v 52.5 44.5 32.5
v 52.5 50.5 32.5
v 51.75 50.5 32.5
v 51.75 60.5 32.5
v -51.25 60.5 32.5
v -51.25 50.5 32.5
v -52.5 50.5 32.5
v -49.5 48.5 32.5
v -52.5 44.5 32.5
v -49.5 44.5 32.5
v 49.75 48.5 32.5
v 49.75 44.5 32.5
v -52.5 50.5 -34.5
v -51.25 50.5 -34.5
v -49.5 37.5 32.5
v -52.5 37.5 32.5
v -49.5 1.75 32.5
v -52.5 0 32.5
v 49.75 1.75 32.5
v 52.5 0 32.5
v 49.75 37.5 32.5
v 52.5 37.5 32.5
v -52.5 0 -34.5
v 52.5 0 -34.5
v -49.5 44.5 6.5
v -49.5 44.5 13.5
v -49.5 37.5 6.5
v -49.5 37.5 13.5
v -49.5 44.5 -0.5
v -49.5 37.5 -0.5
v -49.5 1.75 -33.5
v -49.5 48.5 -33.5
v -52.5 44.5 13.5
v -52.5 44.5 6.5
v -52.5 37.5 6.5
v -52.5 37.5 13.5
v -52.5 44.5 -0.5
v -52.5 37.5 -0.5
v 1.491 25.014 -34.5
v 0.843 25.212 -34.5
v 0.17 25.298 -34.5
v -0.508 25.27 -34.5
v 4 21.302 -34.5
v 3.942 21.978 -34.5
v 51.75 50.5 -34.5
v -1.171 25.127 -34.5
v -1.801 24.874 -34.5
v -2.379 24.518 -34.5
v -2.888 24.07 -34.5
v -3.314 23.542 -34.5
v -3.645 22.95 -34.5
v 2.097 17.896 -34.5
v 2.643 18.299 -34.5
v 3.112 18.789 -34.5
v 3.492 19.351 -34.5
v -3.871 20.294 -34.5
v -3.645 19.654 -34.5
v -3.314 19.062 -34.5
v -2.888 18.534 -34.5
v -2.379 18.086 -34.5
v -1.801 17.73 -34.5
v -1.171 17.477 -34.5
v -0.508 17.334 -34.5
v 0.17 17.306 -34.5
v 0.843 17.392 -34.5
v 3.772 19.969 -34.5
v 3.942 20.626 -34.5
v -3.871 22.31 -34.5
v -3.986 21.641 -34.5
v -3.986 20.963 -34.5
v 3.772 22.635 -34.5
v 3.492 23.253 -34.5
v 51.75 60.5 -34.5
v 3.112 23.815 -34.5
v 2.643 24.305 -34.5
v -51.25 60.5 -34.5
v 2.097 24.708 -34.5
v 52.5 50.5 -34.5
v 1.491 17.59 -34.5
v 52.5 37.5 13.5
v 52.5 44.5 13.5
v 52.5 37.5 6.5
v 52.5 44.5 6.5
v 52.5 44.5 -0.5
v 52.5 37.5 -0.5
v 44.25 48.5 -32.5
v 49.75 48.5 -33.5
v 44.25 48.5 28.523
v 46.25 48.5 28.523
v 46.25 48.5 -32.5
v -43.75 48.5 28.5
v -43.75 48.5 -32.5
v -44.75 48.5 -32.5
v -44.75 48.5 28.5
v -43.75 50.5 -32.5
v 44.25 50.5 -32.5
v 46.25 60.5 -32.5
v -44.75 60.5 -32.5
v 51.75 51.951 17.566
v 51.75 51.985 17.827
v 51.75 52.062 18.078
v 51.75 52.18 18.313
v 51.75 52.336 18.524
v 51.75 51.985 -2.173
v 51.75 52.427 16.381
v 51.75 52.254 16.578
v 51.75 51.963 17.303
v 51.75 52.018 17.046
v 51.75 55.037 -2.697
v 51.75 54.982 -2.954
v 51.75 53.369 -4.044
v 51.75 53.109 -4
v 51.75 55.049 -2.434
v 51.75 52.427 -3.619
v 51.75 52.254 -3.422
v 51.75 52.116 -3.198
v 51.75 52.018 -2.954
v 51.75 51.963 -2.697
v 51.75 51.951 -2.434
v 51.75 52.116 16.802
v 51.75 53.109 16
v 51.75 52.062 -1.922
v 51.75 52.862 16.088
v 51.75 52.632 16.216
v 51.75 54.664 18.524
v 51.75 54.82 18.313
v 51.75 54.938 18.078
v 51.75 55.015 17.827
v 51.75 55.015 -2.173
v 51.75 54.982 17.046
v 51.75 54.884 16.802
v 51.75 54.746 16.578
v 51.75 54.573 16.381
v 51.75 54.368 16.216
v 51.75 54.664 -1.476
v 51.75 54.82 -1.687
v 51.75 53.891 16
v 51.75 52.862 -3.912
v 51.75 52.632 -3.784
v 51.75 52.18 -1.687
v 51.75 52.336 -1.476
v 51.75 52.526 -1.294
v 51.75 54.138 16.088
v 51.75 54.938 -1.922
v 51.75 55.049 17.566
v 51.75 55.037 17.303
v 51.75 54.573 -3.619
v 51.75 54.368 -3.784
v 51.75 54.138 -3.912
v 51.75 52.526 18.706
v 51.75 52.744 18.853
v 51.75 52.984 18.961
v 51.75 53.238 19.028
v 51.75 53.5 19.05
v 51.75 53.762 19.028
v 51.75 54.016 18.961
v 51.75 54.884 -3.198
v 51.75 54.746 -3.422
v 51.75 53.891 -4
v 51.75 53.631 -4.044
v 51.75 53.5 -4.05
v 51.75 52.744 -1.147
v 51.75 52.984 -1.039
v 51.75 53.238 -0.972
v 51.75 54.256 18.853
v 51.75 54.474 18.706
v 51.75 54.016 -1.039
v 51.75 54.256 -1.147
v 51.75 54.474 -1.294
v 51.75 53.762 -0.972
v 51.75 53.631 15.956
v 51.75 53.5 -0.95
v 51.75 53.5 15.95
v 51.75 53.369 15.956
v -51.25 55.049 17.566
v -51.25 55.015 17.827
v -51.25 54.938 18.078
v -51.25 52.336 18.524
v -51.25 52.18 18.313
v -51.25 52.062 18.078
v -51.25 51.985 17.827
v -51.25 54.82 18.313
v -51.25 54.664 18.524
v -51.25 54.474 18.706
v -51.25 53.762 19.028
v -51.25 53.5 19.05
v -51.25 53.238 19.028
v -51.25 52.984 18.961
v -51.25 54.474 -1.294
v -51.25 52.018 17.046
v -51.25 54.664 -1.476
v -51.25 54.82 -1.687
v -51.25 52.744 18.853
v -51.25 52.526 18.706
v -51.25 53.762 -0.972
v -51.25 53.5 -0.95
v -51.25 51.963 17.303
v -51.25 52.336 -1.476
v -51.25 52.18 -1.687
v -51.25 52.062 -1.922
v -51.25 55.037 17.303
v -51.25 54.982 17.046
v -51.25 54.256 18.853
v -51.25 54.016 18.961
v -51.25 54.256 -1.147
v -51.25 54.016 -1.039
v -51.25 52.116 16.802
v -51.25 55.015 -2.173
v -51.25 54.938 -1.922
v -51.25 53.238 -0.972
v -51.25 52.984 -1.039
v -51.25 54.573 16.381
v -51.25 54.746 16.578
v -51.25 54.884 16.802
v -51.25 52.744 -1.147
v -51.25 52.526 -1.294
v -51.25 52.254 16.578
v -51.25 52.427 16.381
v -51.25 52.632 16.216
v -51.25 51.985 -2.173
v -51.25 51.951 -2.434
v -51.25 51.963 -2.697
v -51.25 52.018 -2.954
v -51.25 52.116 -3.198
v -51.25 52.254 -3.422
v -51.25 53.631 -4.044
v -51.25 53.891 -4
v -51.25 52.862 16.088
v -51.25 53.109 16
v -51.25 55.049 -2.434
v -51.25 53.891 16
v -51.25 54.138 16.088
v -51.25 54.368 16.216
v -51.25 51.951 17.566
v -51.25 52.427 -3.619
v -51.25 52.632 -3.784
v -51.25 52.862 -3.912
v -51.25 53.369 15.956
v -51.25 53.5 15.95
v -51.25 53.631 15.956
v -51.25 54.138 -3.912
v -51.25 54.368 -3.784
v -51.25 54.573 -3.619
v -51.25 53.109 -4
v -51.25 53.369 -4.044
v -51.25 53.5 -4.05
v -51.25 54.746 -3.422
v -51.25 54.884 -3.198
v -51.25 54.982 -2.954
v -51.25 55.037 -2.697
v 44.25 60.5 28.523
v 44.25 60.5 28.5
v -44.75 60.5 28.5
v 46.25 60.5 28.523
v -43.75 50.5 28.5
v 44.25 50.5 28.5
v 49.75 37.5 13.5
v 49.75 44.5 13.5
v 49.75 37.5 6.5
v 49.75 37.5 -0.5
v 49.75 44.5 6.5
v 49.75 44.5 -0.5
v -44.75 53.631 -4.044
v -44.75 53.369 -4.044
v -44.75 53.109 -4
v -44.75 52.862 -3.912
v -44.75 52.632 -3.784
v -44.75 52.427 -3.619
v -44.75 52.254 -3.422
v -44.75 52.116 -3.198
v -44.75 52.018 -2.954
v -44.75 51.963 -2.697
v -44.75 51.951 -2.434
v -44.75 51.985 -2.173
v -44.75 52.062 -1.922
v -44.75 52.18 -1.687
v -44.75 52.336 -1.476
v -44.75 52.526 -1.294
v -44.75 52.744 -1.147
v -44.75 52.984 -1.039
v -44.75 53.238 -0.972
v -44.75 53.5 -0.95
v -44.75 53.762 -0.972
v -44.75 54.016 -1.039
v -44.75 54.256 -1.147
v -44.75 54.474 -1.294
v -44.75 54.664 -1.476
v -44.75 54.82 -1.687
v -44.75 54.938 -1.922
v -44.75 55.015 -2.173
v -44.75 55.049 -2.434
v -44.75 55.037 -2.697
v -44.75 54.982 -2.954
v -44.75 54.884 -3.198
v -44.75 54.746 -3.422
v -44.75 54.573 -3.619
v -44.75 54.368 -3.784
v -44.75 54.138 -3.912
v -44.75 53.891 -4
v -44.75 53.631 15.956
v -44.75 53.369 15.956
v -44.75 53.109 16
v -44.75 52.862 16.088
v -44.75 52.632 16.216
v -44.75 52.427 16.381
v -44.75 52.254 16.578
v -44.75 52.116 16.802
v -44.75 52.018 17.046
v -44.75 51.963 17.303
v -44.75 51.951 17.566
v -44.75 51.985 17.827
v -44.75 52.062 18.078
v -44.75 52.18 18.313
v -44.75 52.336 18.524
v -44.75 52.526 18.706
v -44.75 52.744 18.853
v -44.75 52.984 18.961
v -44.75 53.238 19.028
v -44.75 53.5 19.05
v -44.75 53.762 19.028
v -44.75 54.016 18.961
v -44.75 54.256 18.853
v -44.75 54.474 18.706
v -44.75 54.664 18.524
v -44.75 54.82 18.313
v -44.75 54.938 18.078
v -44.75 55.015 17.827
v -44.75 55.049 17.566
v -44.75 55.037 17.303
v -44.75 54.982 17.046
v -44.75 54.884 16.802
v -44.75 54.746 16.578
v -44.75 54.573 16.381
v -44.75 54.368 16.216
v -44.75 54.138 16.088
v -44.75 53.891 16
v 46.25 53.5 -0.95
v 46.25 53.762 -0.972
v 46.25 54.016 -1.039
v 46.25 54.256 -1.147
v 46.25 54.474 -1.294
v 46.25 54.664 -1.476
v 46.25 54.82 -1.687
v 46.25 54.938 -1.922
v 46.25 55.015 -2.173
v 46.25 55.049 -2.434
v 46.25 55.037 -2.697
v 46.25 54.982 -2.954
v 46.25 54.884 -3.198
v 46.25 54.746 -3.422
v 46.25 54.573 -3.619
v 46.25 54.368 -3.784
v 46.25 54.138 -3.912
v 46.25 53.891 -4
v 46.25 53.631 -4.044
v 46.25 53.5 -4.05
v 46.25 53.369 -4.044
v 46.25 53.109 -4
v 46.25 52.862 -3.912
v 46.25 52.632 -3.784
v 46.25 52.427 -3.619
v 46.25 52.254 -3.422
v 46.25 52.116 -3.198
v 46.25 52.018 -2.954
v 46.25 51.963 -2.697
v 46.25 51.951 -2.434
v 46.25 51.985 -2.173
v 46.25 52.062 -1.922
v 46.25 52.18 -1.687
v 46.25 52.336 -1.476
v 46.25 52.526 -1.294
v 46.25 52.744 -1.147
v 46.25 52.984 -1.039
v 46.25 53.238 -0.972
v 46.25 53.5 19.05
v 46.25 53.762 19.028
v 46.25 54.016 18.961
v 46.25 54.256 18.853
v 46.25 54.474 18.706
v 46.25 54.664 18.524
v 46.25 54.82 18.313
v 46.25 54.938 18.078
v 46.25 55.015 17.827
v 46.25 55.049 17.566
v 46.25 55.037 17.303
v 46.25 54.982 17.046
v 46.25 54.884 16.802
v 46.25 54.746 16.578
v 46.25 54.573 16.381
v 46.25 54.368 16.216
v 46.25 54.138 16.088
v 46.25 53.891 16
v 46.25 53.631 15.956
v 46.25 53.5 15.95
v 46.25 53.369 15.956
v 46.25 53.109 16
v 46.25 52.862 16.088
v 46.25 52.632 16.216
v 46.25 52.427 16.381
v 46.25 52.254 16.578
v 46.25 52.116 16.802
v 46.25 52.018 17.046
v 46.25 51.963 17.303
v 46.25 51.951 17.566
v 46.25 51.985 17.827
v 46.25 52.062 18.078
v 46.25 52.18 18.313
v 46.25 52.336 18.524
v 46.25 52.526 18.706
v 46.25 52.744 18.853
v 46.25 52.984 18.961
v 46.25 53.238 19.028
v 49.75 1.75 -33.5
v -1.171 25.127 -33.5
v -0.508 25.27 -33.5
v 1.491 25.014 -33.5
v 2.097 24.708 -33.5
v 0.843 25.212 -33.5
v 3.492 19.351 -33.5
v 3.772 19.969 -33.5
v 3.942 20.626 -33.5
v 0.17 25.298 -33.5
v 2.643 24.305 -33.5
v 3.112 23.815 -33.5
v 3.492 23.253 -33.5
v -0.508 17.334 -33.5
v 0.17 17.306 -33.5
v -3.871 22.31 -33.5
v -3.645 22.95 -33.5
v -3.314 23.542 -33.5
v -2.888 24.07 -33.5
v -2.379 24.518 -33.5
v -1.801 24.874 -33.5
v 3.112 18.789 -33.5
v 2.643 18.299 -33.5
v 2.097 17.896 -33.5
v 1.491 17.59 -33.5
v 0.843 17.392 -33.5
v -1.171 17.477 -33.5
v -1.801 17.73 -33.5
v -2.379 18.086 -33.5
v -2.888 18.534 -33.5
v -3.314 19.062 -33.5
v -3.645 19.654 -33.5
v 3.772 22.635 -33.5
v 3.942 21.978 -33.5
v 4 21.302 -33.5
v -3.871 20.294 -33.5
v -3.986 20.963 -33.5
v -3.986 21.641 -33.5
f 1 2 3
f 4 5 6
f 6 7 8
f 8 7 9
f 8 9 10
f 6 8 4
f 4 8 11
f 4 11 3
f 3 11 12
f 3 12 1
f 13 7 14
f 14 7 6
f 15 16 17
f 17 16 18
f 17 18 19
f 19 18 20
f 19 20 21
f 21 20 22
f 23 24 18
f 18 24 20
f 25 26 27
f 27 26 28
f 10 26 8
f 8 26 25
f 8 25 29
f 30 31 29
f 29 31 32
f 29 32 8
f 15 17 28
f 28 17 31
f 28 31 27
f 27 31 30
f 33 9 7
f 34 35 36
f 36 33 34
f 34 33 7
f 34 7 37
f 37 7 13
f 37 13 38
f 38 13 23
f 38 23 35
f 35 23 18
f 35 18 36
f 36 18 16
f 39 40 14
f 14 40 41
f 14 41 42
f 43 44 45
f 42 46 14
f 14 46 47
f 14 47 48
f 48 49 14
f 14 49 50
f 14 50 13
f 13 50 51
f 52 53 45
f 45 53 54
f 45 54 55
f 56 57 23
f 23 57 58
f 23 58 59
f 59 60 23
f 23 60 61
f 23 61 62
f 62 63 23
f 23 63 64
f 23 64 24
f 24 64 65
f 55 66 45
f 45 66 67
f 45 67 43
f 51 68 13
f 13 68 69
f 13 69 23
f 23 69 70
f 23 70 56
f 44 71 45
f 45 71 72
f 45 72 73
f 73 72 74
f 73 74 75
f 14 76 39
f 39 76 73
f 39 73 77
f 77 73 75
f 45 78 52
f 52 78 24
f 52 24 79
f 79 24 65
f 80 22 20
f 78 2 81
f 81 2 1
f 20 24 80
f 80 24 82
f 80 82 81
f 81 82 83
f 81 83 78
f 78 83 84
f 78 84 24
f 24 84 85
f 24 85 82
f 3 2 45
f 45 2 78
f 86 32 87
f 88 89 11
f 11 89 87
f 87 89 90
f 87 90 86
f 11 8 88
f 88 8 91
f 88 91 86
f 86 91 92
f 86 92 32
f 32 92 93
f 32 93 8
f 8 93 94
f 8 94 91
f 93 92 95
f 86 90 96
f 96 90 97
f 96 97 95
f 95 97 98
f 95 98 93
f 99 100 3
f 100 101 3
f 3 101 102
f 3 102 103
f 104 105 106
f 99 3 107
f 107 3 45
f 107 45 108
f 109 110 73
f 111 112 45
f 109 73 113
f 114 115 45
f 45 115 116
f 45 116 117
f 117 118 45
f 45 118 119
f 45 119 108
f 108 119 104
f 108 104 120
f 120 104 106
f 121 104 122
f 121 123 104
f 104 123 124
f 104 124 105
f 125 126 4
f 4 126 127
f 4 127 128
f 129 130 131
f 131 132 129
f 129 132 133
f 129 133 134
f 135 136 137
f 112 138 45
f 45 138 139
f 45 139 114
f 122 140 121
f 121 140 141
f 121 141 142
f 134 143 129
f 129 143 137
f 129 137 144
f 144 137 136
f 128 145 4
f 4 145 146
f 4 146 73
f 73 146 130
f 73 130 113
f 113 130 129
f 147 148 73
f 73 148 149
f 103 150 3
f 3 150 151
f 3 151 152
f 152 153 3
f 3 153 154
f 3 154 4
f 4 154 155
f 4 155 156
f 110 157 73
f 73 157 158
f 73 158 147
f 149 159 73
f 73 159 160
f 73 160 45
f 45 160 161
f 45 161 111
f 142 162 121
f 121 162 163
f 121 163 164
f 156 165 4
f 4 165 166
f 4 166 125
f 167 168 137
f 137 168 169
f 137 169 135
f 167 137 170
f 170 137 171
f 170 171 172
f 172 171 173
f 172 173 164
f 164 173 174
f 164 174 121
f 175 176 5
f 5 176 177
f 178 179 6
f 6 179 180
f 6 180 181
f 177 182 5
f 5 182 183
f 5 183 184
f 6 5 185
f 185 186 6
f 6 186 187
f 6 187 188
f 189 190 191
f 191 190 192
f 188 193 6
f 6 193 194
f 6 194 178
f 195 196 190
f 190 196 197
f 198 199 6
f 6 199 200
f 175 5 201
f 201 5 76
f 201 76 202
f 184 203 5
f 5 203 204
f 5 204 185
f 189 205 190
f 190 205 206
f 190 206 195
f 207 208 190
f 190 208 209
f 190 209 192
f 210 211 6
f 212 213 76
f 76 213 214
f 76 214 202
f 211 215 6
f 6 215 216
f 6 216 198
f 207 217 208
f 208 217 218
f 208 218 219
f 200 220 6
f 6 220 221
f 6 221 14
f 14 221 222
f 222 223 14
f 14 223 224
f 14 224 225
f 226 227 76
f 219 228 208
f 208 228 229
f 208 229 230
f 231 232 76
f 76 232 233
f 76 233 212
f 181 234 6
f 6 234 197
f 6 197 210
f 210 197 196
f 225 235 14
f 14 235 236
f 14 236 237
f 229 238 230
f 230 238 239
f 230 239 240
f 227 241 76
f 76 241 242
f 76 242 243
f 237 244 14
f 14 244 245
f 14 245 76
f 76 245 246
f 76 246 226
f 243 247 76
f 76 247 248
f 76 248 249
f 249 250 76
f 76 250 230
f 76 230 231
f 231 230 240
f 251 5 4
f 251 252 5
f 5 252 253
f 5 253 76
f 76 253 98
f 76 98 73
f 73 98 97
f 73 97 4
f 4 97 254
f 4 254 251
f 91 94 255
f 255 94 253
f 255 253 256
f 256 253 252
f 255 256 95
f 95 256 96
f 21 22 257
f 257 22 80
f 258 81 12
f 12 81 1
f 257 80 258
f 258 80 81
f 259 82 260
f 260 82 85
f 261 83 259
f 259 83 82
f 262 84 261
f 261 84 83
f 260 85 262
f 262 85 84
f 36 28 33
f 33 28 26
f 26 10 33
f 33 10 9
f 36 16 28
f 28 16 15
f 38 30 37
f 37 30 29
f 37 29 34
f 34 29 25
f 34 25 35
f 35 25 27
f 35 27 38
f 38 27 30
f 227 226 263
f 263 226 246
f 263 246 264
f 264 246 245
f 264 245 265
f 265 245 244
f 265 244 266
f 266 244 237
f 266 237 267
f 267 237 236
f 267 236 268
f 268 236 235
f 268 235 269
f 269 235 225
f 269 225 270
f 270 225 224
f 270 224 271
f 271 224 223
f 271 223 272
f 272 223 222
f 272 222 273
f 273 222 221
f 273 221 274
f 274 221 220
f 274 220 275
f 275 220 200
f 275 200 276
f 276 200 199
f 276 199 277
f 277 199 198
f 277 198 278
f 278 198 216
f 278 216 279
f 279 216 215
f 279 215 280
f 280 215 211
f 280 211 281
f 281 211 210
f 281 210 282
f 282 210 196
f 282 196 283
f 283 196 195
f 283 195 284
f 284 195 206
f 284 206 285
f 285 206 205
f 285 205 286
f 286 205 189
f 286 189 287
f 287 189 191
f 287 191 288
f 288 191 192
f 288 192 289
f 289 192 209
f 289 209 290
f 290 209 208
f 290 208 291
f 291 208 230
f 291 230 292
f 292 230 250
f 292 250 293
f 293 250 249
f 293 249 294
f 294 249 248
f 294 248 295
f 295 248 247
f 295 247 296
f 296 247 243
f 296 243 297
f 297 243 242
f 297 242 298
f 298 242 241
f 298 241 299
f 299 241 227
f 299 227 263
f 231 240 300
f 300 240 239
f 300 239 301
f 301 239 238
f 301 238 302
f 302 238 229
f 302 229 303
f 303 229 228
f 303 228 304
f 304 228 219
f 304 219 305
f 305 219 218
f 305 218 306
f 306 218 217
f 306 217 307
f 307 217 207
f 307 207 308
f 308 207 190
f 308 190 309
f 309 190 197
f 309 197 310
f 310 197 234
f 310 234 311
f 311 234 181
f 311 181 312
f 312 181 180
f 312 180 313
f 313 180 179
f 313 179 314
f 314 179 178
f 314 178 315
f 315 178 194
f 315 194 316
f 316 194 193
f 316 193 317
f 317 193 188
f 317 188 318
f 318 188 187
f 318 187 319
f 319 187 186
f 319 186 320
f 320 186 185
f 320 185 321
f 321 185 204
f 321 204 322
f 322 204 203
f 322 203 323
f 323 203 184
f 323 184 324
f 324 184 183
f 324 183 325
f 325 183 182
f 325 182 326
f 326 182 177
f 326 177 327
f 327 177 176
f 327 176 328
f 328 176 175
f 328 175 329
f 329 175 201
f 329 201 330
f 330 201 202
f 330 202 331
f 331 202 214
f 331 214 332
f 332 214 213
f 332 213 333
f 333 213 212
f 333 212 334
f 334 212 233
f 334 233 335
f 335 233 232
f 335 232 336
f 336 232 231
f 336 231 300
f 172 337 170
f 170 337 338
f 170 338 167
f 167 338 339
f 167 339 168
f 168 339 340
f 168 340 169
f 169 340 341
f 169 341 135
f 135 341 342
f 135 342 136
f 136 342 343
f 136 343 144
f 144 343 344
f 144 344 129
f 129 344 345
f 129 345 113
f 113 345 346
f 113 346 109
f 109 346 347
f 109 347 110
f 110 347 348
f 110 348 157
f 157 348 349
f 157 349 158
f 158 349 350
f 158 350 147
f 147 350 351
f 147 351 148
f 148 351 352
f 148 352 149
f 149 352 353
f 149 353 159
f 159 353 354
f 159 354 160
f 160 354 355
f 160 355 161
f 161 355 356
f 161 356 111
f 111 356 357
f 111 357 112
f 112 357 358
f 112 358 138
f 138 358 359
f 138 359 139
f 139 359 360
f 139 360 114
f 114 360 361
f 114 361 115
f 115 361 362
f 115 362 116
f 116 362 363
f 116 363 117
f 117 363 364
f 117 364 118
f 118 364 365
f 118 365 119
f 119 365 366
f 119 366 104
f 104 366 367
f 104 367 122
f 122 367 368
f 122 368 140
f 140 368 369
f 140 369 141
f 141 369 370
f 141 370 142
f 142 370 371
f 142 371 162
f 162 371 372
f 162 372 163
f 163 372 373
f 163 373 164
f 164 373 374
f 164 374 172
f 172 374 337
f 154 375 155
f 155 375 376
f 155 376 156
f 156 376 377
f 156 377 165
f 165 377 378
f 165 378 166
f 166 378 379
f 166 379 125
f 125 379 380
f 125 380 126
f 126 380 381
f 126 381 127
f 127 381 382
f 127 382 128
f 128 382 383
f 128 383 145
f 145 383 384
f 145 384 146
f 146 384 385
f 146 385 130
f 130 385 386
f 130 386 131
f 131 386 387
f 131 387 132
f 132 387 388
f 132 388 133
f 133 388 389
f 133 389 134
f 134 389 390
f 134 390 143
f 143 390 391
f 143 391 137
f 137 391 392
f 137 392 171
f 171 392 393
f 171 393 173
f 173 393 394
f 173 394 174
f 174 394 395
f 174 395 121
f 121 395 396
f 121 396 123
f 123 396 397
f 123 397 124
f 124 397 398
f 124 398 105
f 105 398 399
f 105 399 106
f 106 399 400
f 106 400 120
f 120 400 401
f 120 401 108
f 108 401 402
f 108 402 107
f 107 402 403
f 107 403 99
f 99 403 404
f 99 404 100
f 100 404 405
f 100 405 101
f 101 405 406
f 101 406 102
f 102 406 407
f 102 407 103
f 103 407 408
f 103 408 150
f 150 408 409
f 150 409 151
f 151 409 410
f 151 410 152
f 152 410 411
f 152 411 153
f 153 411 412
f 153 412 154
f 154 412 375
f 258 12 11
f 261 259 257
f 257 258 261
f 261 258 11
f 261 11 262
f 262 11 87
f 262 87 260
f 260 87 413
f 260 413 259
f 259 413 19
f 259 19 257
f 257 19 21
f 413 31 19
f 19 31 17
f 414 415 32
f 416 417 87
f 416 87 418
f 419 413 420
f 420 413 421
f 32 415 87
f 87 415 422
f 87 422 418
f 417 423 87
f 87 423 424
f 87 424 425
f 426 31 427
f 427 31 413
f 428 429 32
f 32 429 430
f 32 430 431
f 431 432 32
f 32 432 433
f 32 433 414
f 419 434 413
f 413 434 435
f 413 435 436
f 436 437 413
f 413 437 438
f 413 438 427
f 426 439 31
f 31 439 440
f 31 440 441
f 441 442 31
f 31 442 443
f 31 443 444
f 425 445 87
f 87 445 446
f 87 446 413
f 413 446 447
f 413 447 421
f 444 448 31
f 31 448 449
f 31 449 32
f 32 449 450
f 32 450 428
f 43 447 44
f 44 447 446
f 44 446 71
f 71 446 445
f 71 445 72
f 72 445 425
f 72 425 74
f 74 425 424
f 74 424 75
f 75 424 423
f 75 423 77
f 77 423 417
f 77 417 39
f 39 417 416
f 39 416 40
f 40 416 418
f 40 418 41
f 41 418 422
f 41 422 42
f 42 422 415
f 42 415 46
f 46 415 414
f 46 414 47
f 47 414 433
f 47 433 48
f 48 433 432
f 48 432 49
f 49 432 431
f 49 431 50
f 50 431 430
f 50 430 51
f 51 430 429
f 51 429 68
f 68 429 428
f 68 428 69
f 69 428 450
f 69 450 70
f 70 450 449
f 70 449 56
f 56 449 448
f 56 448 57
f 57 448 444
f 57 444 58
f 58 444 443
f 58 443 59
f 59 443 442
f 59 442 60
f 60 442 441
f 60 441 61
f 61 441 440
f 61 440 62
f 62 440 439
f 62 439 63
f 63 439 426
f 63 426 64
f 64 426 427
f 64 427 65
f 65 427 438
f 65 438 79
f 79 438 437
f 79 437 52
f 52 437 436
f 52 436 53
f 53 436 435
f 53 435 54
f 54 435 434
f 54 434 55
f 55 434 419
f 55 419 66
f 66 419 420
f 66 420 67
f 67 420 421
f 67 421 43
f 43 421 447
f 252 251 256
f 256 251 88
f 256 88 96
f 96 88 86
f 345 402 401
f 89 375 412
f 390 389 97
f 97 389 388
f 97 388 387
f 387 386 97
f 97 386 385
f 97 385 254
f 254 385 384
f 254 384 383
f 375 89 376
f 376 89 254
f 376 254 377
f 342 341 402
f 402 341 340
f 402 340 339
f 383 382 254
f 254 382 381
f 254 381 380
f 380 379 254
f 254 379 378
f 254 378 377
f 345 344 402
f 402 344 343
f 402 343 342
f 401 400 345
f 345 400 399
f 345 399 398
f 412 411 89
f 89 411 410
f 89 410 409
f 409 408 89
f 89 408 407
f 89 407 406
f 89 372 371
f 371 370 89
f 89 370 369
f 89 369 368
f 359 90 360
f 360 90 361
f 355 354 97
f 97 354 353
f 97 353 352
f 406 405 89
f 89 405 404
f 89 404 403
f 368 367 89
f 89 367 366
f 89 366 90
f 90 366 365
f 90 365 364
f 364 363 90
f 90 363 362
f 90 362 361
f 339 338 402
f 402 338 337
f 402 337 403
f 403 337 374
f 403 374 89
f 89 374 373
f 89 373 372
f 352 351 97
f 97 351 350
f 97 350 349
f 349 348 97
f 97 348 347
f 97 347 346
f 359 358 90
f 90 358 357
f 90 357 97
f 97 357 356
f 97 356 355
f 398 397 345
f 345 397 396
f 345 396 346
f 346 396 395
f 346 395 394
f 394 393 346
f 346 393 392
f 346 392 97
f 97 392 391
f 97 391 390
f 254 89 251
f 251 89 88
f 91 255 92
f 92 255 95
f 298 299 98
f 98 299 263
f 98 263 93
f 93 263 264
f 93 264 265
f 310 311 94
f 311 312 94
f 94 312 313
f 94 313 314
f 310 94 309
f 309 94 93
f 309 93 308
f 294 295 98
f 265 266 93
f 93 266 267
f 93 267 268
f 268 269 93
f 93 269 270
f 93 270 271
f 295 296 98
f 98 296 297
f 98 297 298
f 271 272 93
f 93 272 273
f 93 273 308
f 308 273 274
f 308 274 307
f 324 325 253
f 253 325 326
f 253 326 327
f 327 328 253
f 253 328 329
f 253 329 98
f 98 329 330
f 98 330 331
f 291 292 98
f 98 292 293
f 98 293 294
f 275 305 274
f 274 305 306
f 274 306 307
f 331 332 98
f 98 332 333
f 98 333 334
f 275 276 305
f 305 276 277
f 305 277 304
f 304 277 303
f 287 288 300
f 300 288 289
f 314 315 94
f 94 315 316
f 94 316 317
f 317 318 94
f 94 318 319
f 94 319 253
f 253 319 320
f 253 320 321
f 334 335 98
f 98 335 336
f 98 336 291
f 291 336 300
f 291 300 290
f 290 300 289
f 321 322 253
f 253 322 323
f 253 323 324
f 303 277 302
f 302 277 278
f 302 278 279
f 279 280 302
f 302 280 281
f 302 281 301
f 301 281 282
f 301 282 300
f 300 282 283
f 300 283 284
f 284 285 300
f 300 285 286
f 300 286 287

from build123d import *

# Parameters (mm, degrees)
SKETCH_1_W           = 99
SKETCH_1_H           = 65
EXTRUDE_1_DEPTH      = 2
EXTRUDE_2_DEPTH      = 46.5
EXTRUDE_2_DEPTH_BACK = 2
SKETCH_3_W           = 105
SKETCH_3_H           = 67
EXTRUDE_3_DEPTH      = 2
SKETCH_5_W           = 103
SKETCH_5_H           = 67
SKETCH_5_W_2         = 88
SKETCH_5_H_2         = 61
EXTRUDE_4_DEPTH      = 10
SKETCH_7_W           = 7
SKETCH_7_H           = 7
SKETCH_7_W_2         = 24.495718853
CUT_EXTRUDE_1_DEPTH  = 126.998015857
SKETCH_8_R           = 1.55
CUT_EXTRUDE_2_DEPTH  = 126.998015857
SKETCH_9_W           = 99.25
SKETCH_9_H           = 46.75
CUT_EXTRUDE_3_DEPTH  = 66
SKETCH_10_R          = 4
CUT_EXTRUDE_4_DEPTH  = 105.42940199
CUT_EXTRUDE_5_REACH  = 89.217
SKETCH_11_W          = 2
SKETCH_11_H          = 61.022672822
SKETCH_11_W_2        = 1
SKETCH_11_H_2        = 61


with BuildPart() as part:
    # 草图1 → 凸台-拉伸1 (new body)
    with BuildSketch(Plane(origin=(0, 0, 0), x_dir=(1, 0, 0), z_dir=(0, 1, 0))):
        Rectangle(SKETCH_1_W, SKETCH_1_H)
    extrude(amount=EXTRUDE_1_DEPTH)

    # 草图2 → 凸台-拉伸2 (add, two sides: drawn at the far end of the back side and taken through both)
    with BuildSketch(Plane(origin=(0, 2, 0), x_dir=(1, 0, 0), z_dir=(0, 1, 0)).offset(-EXTRUDE_2_DEPTH_BACK)):
        Polygon((-52.5, 34.5), (-52.5, -32.5), (-49.5, -32.5), (-49.5, 32.5), (49.5, 32.5), (49.5, -32.5), (52.5, -32.5), (52.5, 34.5), align=None)
    extrude(amount=EXTRUDE_2_DEPTH + EXTRUDE_2_DEPTH_BACK)

    # 草图3 → 凸台-拉伸3 (add)
    with BuildSketch(Plane(origin=(0, 48.5, 0), x_dir=(1, 0, 0), z_dir=(0, 1, 0))):
        with Locations((0, 1)):
            Rectangle(SKETCH_3_W, SKETCH_3_H)
    extrude(amount=EXTRUDE_3_DEPTH)

    # 草图5 → 凸台-拉伸4 (add)
    with BuildSketch(Plane(origin=(0, 50.5, 0), x_dir=(1, 0, 0), z_dir=(0, 1, 0))):
        with Locations((0.25, 1)):
            Rectangle(SKETCH_5_W, SKETCH_5_H)
        with Locations((0.25, 2)):
            Rectangle(SKETCH_5_W_2, SKETCH_5_H_2, mode=Mode.SUBTRACT)
    extrude(amount=EXTRUDE_4_DEPTH)

    # 草图7 → 切除-拉伸1 (cut, through all)
    with BuildSketch(Plane.ZY.offset(52.5)):
        with Locations((3, 41)):
            Rectangle(SKETCH_7_W, SKETCH_7_H)
        with Locations((25.747859426, 41)):
            Rectangle(SKETCH_7_W_2, SKETCH_7_H)
    extrude(amount=-CUT_EXTRUDE_1_DEPTH, mode=Mode.SUBTRACT)

    # 草图8 → 切除-拉伸2 (cut, through all)
    with BuildSketch(Plane.ZY.offset(52.5)):
        with Locations(Location((17.5, 53.5, 0), (0, 0, 180))):
            Circle(SKETCH_8_R)
        with Locations(Location((-2.5, 53.5, 0), (0, 0, 180))):
            Circle(SKETCH_8_R)
    extrude(amount=-CUT_EXTRUDE_2_DEPTH, mode=Mode.SUBTRACT)

    # 草图9 → 切除-拉伸3 (cut)
    with BuildSketch(Plane.XY.offset(32.5)):
        with Locations((0.125, 25.125)):
            Rectangle(SKETCH_9_W, SKETCH_9_H)
    extrude(amount=-CUT_EXTRUDE_3_DEPTH, mode=Mode.SUBTRACT)

    # 草图10 → 切除-拉伸4 (cut, through all)
    with BuildSketch(Plane.XY.offset(32.5)):
        with Locations((0, 21.301964842)):
            Circle(SKETCH_10_R)
    extrude(amount=-CUT_EXTRUDE_4_DEPTH, mode=Mode.SUBTRACT)

    # 草图11 → 切除-拉伸5 (cut, up to next)
    with BuildSketch(Plane(origin=(0, 60.5, 0), x_dir=(1, 0, 0), z_dir=(0, 1, 0)), mode=Mode.PRIVATE) as cut_extrude_5_sk1:
        with Locations((45.25, 1.988663589)):
            Rectangle(SKETCH_11_W, SKETCH_11_H)
    cut_extrude_5_tool1 = extrude(cut_extrude_5_sk1.sketch, amount=-CUT_EXTRUDE_5_REACH, mode=Mode.PRIVATE) & part.part
    # 草图11 → 切除-拉伸5 (cut, up to next)
    with BuildSketch(Plane(origin=(0, 60.5, 0), x_dir=(1, 0, 0), z_dir=(0, 1, 0)), mode=Mode.PRIVATE) as cut_extrude_5_sk2:
        with Locations((-44.25, 2)):
            Rectangle(SKETCH_11_W_2, SKETCH_11_H_2)
    cut_extrude_5_tool2 = extrude(cut_extrude_5_sk2.sketch, amount=-CUT_EXTRUDE_5_REACH, mode=Mode.PRIVATE) & part.part
    add(cut_extrude_5_tool1.solids().sort_by_distance((45.25, 60.5, -1.988664))[0], mode=Mode.SUBTRACT)
    add(cut_extrude_5_tool2.solids().sort_by_distance((-44.25, 60.5, -2))[0], mode=Mode.SUBTRACT)


solid = part.part
